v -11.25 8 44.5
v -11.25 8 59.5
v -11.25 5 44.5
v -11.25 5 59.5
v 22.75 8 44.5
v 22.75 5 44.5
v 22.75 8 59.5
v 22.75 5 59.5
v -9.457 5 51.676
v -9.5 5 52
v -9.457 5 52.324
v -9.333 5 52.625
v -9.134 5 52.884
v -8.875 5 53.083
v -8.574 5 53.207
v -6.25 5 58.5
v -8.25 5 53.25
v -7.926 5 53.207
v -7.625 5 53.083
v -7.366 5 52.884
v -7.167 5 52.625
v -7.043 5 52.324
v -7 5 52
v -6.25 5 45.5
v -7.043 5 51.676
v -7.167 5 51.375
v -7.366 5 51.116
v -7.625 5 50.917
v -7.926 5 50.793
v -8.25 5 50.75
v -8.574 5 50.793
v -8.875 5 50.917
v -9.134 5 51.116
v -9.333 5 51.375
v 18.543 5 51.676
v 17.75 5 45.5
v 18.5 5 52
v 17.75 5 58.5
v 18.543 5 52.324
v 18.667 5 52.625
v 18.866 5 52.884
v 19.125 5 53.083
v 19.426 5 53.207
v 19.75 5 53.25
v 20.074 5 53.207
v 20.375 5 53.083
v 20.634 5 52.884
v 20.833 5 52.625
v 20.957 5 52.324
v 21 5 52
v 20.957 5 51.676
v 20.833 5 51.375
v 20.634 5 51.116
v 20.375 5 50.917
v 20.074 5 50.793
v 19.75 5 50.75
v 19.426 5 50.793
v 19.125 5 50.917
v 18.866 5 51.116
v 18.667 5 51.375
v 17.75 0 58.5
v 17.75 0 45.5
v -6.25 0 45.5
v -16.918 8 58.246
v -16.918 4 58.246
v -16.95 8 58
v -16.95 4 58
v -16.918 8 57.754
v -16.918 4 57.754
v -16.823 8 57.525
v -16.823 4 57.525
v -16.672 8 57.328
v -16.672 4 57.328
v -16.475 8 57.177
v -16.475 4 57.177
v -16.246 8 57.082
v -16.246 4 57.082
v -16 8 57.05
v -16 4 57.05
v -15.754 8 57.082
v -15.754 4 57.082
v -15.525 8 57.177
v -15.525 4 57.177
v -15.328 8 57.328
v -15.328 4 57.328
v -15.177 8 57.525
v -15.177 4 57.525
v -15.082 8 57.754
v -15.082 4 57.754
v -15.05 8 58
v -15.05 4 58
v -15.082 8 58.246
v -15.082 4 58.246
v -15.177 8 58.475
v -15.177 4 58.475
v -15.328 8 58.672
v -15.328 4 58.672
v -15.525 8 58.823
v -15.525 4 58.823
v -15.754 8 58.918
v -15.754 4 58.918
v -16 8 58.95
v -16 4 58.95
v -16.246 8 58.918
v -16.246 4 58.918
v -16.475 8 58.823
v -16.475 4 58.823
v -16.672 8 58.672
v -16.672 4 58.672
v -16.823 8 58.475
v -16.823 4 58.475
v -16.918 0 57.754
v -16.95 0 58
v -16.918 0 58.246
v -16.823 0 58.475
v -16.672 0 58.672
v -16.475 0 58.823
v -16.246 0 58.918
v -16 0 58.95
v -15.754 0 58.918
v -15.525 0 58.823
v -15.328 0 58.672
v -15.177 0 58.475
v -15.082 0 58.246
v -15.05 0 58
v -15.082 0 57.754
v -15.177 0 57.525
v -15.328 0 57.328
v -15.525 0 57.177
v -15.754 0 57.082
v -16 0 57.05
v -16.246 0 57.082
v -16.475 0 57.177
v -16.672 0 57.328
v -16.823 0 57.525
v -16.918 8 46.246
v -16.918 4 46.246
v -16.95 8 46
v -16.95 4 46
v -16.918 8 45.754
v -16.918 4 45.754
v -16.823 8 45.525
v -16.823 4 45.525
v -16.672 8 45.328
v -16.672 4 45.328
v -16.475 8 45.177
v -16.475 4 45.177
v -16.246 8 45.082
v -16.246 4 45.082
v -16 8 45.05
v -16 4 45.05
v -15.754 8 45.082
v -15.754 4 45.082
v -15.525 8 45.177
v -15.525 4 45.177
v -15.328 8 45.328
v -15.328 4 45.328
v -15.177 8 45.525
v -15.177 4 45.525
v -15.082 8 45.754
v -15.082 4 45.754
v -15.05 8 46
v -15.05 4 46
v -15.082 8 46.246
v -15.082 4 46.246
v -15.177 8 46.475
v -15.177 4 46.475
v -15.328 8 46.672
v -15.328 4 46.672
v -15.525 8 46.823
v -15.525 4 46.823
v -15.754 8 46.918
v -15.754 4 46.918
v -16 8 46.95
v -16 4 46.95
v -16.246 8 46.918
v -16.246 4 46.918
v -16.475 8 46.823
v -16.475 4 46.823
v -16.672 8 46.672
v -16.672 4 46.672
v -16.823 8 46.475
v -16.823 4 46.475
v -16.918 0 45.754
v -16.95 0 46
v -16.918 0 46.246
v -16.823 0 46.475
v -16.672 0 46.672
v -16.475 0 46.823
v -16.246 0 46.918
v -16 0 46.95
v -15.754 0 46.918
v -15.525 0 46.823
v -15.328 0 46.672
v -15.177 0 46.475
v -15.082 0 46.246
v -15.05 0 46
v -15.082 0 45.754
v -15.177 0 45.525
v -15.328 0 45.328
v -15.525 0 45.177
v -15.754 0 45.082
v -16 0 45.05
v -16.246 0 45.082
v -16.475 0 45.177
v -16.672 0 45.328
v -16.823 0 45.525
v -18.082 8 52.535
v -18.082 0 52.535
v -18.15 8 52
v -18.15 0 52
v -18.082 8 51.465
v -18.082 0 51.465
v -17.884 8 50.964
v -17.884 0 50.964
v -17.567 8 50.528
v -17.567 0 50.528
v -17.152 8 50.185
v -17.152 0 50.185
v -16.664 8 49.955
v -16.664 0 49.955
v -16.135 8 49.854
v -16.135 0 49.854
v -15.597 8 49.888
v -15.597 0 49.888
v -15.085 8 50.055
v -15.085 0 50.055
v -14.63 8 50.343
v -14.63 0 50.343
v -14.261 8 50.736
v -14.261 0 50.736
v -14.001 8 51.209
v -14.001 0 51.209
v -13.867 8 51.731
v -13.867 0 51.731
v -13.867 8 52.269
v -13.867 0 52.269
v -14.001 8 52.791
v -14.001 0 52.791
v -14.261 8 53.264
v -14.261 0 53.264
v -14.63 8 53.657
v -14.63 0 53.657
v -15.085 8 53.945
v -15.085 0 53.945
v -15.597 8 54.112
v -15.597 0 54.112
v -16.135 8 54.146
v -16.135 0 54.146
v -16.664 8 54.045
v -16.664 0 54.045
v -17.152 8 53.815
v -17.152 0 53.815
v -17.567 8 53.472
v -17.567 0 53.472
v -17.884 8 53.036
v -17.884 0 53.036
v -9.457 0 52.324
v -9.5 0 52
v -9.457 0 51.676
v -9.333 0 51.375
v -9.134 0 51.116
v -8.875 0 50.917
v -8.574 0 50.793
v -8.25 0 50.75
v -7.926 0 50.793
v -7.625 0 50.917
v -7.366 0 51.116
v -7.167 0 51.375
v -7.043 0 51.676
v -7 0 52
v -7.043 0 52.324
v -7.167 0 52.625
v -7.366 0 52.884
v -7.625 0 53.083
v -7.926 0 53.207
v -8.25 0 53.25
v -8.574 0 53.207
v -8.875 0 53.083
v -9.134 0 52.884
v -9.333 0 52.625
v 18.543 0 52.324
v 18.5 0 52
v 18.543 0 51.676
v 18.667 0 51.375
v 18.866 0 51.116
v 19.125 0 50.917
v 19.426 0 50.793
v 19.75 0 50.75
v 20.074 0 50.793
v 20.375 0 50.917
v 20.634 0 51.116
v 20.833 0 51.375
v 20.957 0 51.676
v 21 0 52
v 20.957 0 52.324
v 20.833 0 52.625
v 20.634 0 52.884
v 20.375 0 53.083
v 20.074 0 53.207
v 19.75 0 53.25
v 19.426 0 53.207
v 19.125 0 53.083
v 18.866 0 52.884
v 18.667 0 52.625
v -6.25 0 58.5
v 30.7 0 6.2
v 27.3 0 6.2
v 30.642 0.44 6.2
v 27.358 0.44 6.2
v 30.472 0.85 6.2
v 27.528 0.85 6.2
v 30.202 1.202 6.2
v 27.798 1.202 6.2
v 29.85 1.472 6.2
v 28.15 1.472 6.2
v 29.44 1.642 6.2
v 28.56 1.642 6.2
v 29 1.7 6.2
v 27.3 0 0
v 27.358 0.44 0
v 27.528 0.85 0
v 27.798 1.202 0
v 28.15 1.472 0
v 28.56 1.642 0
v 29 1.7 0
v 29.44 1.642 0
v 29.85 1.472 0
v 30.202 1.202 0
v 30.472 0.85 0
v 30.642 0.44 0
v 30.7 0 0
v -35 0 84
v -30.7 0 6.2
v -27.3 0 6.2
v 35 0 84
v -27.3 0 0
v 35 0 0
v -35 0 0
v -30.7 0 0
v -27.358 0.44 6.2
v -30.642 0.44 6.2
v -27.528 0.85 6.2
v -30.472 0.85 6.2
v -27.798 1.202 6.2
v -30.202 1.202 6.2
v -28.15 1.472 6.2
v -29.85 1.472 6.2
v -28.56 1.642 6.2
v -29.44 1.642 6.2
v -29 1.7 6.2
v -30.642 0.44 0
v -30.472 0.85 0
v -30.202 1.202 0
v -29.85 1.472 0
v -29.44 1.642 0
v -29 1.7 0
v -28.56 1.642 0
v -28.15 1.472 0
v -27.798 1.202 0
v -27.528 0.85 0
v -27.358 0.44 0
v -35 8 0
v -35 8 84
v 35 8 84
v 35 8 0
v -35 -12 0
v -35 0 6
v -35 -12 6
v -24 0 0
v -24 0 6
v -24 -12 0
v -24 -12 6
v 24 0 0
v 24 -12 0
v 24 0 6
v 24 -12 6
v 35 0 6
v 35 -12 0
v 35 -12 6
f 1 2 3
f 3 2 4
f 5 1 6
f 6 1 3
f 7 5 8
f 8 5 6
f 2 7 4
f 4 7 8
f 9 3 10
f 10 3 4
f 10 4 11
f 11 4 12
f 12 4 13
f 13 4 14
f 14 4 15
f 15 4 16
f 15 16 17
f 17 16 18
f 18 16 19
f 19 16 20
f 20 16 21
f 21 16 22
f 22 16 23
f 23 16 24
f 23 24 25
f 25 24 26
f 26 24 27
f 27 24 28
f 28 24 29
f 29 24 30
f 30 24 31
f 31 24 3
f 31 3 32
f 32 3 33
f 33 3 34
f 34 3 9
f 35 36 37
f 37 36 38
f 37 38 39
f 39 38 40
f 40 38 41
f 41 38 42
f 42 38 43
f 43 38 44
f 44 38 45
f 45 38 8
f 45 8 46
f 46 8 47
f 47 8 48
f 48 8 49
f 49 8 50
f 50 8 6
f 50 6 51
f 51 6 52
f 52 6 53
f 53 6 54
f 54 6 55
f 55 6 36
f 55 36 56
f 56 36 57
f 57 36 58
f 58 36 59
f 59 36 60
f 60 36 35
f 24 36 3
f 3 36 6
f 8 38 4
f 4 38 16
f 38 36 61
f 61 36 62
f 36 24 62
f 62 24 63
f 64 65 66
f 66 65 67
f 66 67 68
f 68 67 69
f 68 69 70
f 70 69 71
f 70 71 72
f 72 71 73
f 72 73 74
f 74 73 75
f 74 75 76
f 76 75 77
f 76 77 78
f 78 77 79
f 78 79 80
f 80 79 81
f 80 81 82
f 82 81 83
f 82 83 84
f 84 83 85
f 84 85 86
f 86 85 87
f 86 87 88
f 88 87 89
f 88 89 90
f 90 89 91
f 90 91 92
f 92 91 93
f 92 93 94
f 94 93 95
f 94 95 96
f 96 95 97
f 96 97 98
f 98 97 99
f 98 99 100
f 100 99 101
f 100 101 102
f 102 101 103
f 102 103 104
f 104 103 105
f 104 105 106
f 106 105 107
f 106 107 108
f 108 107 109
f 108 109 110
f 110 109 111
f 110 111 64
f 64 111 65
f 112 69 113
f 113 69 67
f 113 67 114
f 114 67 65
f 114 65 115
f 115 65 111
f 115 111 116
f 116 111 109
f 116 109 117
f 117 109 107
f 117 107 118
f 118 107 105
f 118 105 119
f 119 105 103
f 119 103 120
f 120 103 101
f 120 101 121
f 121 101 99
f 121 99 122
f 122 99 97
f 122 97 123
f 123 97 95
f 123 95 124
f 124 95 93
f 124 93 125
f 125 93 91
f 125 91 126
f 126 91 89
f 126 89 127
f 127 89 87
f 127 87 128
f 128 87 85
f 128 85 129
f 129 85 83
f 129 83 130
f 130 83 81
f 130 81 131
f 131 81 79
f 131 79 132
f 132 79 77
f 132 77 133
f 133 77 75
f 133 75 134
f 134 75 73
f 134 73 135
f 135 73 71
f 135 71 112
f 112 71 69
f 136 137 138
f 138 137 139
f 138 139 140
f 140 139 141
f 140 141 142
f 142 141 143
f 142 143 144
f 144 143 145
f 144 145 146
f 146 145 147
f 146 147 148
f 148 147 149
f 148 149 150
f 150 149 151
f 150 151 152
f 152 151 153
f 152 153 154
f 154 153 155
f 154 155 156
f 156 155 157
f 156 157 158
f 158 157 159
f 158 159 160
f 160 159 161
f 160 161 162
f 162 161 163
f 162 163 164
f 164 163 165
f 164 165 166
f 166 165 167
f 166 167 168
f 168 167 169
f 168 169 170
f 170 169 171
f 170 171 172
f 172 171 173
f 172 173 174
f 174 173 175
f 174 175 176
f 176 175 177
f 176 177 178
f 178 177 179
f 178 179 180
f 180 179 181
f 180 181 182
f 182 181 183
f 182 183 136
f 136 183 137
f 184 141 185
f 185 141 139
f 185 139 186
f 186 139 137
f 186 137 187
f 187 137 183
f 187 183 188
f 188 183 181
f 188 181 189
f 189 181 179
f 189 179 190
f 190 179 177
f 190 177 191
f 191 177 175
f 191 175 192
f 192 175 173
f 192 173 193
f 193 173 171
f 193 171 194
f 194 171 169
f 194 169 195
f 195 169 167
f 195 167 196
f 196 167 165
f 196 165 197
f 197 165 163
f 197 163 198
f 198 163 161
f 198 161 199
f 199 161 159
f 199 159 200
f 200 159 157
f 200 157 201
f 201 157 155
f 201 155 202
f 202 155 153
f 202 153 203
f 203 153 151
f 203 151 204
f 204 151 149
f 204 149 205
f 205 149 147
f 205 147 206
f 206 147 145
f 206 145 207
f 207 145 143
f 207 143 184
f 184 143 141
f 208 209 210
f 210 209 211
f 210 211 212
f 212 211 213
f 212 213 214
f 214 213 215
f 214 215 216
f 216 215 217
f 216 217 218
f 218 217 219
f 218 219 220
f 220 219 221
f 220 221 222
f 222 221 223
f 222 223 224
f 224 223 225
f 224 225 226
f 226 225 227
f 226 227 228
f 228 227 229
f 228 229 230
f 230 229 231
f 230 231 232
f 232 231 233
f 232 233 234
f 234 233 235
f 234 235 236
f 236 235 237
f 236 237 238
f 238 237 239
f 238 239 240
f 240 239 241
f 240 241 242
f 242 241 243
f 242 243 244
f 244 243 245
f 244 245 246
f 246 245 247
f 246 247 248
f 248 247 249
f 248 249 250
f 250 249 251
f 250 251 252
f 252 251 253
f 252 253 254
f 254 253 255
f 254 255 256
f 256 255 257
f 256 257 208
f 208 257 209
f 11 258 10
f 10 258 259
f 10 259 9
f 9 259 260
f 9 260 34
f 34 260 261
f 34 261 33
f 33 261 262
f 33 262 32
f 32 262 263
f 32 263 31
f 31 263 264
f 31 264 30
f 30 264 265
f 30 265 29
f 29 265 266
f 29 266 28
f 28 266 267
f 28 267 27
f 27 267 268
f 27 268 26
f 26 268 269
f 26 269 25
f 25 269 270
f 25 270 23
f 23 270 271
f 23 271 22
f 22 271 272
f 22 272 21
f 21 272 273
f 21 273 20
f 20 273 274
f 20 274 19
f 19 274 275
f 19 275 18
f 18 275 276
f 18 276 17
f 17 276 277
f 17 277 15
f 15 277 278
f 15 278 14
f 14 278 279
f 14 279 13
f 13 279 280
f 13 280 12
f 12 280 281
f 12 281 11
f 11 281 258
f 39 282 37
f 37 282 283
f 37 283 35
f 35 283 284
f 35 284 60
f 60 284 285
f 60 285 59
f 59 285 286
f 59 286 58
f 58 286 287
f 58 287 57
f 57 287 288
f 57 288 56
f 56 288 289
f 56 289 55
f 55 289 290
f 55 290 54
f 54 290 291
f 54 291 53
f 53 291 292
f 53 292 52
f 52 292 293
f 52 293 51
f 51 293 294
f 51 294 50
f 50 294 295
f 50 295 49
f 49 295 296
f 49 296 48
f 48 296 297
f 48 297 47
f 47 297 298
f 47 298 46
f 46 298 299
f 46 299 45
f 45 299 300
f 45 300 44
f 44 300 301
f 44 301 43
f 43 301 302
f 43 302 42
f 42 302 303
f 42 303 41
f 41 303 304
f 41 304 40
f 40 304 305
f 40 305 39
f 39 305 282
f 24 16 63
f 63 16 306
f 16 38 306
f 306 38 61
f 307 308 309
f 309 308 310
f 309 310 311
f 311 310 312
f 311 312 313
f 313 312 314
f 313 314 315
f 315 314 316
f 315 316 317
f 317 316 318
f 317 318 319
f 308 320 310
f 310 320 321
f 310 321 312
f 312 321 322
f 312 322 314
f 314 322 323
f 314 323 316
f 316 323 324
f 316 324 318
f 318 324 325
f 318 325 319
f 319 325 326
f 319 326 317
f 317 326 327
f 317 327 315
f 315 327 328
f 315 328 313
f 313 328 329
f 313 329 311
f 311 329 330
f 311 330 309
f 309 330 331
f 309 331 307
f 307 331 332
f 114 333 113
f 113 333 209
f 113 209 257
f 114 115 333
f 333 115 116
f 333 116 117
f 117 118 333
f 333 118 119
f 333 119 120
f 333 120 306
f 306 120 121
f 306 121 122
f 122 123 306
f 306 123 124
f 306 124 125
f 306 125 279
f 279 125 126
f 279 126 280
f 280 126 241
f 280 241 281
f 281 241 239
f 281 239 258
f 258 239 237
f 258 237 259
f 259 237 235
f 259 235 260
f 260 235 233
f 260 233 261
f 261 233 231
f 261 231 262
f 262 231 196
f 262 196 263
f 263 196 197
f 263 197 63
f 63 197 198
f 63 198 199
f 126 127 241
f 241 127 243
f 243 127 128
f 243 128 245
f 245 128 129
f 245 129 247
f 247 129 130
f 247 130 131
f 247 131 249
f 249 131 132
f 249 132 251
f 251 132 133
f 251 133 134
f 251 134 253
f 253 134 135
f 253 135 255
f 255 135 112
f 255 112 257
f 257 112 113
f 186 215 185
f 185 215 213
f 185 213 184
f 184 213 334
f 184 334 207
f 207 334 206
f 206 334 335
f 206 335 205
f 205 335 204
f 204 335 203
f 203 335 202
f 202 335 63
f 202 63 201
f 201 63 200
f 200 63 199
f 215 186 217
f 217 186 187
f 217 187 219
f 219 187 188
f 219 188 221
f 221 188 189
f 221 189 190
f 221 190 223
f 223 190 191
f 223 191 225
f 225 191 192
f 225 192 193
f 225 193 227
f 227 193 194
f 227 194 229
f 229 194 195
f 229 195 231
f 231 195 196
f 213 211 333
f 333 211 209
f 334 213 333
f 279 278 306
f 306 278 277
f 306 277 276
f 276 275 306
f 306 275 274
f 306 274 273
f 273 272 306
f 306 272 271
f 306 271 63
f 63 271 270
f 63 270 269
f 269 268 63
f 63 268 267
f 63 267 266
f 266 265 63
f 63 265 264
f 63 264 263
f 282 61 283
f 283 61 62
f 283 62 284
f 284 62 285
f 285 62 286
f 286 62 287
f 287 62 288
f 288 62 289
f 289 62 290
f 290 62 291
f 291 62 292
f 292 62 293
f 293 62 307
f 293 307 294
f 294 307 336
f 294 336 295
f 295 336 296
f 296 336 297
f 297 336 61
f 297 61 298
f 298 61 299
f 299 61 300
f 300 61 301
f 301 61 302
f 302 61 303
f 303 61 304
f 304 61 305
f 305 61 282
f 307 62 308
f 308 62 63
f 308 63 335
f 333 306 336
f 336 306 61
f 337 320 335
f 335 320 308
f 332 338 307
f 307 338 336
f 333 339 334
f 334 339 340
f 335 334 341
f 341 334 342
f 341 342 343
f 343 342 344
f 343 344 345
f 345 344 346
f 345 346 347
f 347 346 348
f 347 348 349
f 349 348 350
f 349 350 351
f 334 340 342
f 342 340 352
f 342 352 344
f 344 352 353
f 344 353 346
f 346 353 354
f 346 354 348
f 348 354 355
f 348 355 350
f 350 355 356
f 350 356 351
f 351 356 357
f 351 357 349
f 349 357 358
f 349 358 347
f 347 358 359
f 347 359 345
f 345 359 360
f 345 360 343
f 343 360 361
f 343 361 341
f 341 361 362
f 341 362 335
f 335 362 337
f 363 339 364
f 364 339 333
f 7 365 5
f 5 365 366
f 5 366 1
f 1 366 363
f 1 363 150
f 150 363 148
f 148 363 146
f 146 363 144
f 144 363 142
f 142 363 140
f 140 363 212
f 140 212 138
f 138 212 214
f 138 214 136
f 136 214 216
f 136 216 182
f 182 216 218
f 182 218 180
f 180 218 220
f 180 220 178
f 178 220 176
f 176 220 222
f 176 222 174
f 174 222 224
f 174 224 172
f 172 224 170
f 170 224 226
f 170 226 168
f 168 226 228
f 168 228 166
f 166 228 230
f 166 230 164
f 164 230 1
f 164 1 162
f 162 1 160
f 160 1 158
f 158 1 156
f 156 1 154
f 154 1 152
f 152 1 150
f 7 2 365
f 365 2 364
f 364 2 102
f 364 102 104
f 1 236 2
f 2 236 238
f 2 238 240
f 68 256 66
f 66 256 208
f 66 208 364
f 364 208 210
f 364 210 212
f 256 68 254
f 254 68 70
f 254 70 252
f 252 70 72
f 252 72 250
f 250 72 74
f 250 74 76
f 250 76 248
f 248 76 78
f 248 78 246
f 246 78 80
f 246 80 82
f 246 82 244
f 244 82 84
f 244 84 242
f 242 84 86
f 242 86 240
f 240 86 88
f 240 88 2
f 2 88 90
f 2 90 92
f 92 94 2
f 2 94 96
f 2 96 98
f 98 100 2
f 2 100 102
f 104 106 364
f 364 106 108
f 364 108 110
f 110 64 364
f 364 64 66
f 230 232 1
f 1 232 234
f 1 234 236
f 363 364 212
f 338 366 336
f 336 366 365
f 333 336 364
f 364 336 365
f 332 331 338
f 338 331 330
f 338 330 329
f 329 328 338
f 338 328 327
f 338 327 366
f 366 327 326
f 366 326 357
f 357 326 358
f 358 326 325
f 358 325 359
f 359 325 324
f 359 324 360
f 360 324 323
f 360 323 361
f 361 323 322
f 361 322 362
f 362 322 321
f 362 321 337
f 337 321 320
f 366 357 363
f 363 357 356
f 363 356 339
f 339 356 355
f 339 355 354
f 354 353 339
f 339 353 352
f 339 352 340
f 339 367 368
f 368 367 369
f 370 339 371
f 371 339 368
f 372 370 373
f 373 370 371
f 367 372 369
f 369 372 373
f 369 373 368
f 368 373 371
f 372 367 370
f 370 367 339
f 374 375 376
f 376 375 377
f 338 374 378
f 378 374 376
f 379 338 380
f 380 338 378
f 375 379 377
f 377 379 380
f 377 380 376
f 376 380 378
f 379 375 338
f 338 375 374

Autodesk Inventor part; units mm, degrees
ref_plane "YZ Plane" through (0, 0, 0) normal (1, 0, 0) x (0, 1, 0)
ref_plane "XY Plane" through (0, 0, 0) normal (0, 0, 1) x (1, 0, 0)
sketch "Skizze1" plane through (0, 0, 0) normal (0, 0, 1) x (1, 0, 0)
  line L0 (-35, 0) -> (35, 0)
  line L1 (35, 0) -> (35, 8)
  line L2 (35, 8) -> (-35, 8)
  line L3 (-35, 8) -> (-35, 0)
extrude "Extrusion1" add sketch "Skizze1" along normal blind 84
sketch "Skizze2" plane through (0, 0, 0) normal (0, 0, 1) x (1, 0, 0)
  line L0 (-35, -12) -> (-24, -12)
  line L1 (-24, -12) -> (-24, 0)
  line L2 (-24, 0) -> (-35, 0)
  line L3 (-35, 0) -> (-35, -12)
extrude "Extrusion2" add sketch "Skizze2" along normal blind 6 separate body
sketch "Skizze3" plane through (0, 0, 0) normal (0, 0, 1) x (1, 0, 0)
  line L0 (24, -12) -> (35, -12)
  line L1 (35, -12) -> (35, 0)
  line L2 (35, 0) -> (24, 0)
  line L3 (24, 0) -> (24, -12)
extrude "Extrusion3" add sketch "Skizze3" along normal blind 6 separate body
sketch "Skizze4" plane through (0, 0, 0) normal (0, 0, 1) x (1, 0, 0)
  circle A0 centre (-29, 0) radius 1.7
extrude "Extrusion4" cut sketch "Skizze4" along normal blind 6.2 bodies 1
sketch "Skizze5" plane through (0, 0, 0) normal (0, 0, 1) x (1, 0, 0)
  circle A0 centre (29, 0) radius 1.7
extrude "Extrusion5" cut sketch "Skizze5" along normal blind 6.2 bodies 1
sketch "Skizze6" plane through (0, 0, 0) normal (0, 1, 0) x (-1, 0, 0)
  line L0 (-17.75, 45.5) -> (6.25, 45.5)
  line L1 (6.25, 45.5) -> (6.25, 58.5)
  line L2 (6.25, 58.5) -> (-17.75, 58.5)
  line L3 (-17.75, 58.5) -> (-17.75, 45.5)
extrude "Extrusion6" cut sketch "Skizze6" along normal blind 8.2 bodies 1
sketch "Skizze7" plane through (0, 0, 0) normal (0, 1, 0) x (-1, 0, 0)
  circle A0 centre (-19.75, 52) radius 1.25
extrude "Extrusion7" cut sketch "Skizze7" along normal blind 8.2 bodies 1
sketch "Skizze8" plane through (0, 0, 0) normal (0, 1, 0) x (-1, 0, 0)
  circle A0 centre (8.25, 52) radius 1.25
extrude "Extrusion8" cut sketch "Skizze8" along normal blind 8.2 bodies 1
sketch "Skizze9" plane through (0, 0, 0) normal (0, 1, 0) x (-1, 0, 0)
  circle A0 centre (16, 52) radius 2.15
extrude "Extrusion9" cut sketch "Skizze9" along normal blind 8.2 bodies 1
sketch "Skizze10" plane through (0, 0, 0) normal (0, 1, 0) x (-1, 0, 0)
  circle A0 centre (16, 46) radius 0.95
extrude "Extrusion10" cut sketch "Skizze10" along normal blind 8.2 bodies 1
sketch "Skizze11" plane through (0, 0, 0) normal (0, 1, 0) x (-1, 0, 0)
  circle A0 centre (16, 58) radius 0.95
extrude "Extrusion11" cut sketch "Skizze11" along normal blind 8.2 bodies 1
ref_plane "Arbeitsebene1" through (0, 5, 0) normal (0, 1, 0) x (-1, 0, 0)
sketch "Skizze12" plane through (0, 5, 0) normal (0, 1, 0) x (-1, 0, 0)
  line L0 (-22.75, 44.5) -> (11.25, 44.5)
  line L1 (11.25, 44.5) -> (11.25, 59.5)
  line L2 (11.25, 59.5) -> (-22.75, 59.5)
  line L3 (-22.75, 59.5) -> (-22.75, 44.5)
extrude "Extrusion12" cut sketch "Skizze12" along normal blind 3.2 bodies 1
properties part number "Turm_Servo"
